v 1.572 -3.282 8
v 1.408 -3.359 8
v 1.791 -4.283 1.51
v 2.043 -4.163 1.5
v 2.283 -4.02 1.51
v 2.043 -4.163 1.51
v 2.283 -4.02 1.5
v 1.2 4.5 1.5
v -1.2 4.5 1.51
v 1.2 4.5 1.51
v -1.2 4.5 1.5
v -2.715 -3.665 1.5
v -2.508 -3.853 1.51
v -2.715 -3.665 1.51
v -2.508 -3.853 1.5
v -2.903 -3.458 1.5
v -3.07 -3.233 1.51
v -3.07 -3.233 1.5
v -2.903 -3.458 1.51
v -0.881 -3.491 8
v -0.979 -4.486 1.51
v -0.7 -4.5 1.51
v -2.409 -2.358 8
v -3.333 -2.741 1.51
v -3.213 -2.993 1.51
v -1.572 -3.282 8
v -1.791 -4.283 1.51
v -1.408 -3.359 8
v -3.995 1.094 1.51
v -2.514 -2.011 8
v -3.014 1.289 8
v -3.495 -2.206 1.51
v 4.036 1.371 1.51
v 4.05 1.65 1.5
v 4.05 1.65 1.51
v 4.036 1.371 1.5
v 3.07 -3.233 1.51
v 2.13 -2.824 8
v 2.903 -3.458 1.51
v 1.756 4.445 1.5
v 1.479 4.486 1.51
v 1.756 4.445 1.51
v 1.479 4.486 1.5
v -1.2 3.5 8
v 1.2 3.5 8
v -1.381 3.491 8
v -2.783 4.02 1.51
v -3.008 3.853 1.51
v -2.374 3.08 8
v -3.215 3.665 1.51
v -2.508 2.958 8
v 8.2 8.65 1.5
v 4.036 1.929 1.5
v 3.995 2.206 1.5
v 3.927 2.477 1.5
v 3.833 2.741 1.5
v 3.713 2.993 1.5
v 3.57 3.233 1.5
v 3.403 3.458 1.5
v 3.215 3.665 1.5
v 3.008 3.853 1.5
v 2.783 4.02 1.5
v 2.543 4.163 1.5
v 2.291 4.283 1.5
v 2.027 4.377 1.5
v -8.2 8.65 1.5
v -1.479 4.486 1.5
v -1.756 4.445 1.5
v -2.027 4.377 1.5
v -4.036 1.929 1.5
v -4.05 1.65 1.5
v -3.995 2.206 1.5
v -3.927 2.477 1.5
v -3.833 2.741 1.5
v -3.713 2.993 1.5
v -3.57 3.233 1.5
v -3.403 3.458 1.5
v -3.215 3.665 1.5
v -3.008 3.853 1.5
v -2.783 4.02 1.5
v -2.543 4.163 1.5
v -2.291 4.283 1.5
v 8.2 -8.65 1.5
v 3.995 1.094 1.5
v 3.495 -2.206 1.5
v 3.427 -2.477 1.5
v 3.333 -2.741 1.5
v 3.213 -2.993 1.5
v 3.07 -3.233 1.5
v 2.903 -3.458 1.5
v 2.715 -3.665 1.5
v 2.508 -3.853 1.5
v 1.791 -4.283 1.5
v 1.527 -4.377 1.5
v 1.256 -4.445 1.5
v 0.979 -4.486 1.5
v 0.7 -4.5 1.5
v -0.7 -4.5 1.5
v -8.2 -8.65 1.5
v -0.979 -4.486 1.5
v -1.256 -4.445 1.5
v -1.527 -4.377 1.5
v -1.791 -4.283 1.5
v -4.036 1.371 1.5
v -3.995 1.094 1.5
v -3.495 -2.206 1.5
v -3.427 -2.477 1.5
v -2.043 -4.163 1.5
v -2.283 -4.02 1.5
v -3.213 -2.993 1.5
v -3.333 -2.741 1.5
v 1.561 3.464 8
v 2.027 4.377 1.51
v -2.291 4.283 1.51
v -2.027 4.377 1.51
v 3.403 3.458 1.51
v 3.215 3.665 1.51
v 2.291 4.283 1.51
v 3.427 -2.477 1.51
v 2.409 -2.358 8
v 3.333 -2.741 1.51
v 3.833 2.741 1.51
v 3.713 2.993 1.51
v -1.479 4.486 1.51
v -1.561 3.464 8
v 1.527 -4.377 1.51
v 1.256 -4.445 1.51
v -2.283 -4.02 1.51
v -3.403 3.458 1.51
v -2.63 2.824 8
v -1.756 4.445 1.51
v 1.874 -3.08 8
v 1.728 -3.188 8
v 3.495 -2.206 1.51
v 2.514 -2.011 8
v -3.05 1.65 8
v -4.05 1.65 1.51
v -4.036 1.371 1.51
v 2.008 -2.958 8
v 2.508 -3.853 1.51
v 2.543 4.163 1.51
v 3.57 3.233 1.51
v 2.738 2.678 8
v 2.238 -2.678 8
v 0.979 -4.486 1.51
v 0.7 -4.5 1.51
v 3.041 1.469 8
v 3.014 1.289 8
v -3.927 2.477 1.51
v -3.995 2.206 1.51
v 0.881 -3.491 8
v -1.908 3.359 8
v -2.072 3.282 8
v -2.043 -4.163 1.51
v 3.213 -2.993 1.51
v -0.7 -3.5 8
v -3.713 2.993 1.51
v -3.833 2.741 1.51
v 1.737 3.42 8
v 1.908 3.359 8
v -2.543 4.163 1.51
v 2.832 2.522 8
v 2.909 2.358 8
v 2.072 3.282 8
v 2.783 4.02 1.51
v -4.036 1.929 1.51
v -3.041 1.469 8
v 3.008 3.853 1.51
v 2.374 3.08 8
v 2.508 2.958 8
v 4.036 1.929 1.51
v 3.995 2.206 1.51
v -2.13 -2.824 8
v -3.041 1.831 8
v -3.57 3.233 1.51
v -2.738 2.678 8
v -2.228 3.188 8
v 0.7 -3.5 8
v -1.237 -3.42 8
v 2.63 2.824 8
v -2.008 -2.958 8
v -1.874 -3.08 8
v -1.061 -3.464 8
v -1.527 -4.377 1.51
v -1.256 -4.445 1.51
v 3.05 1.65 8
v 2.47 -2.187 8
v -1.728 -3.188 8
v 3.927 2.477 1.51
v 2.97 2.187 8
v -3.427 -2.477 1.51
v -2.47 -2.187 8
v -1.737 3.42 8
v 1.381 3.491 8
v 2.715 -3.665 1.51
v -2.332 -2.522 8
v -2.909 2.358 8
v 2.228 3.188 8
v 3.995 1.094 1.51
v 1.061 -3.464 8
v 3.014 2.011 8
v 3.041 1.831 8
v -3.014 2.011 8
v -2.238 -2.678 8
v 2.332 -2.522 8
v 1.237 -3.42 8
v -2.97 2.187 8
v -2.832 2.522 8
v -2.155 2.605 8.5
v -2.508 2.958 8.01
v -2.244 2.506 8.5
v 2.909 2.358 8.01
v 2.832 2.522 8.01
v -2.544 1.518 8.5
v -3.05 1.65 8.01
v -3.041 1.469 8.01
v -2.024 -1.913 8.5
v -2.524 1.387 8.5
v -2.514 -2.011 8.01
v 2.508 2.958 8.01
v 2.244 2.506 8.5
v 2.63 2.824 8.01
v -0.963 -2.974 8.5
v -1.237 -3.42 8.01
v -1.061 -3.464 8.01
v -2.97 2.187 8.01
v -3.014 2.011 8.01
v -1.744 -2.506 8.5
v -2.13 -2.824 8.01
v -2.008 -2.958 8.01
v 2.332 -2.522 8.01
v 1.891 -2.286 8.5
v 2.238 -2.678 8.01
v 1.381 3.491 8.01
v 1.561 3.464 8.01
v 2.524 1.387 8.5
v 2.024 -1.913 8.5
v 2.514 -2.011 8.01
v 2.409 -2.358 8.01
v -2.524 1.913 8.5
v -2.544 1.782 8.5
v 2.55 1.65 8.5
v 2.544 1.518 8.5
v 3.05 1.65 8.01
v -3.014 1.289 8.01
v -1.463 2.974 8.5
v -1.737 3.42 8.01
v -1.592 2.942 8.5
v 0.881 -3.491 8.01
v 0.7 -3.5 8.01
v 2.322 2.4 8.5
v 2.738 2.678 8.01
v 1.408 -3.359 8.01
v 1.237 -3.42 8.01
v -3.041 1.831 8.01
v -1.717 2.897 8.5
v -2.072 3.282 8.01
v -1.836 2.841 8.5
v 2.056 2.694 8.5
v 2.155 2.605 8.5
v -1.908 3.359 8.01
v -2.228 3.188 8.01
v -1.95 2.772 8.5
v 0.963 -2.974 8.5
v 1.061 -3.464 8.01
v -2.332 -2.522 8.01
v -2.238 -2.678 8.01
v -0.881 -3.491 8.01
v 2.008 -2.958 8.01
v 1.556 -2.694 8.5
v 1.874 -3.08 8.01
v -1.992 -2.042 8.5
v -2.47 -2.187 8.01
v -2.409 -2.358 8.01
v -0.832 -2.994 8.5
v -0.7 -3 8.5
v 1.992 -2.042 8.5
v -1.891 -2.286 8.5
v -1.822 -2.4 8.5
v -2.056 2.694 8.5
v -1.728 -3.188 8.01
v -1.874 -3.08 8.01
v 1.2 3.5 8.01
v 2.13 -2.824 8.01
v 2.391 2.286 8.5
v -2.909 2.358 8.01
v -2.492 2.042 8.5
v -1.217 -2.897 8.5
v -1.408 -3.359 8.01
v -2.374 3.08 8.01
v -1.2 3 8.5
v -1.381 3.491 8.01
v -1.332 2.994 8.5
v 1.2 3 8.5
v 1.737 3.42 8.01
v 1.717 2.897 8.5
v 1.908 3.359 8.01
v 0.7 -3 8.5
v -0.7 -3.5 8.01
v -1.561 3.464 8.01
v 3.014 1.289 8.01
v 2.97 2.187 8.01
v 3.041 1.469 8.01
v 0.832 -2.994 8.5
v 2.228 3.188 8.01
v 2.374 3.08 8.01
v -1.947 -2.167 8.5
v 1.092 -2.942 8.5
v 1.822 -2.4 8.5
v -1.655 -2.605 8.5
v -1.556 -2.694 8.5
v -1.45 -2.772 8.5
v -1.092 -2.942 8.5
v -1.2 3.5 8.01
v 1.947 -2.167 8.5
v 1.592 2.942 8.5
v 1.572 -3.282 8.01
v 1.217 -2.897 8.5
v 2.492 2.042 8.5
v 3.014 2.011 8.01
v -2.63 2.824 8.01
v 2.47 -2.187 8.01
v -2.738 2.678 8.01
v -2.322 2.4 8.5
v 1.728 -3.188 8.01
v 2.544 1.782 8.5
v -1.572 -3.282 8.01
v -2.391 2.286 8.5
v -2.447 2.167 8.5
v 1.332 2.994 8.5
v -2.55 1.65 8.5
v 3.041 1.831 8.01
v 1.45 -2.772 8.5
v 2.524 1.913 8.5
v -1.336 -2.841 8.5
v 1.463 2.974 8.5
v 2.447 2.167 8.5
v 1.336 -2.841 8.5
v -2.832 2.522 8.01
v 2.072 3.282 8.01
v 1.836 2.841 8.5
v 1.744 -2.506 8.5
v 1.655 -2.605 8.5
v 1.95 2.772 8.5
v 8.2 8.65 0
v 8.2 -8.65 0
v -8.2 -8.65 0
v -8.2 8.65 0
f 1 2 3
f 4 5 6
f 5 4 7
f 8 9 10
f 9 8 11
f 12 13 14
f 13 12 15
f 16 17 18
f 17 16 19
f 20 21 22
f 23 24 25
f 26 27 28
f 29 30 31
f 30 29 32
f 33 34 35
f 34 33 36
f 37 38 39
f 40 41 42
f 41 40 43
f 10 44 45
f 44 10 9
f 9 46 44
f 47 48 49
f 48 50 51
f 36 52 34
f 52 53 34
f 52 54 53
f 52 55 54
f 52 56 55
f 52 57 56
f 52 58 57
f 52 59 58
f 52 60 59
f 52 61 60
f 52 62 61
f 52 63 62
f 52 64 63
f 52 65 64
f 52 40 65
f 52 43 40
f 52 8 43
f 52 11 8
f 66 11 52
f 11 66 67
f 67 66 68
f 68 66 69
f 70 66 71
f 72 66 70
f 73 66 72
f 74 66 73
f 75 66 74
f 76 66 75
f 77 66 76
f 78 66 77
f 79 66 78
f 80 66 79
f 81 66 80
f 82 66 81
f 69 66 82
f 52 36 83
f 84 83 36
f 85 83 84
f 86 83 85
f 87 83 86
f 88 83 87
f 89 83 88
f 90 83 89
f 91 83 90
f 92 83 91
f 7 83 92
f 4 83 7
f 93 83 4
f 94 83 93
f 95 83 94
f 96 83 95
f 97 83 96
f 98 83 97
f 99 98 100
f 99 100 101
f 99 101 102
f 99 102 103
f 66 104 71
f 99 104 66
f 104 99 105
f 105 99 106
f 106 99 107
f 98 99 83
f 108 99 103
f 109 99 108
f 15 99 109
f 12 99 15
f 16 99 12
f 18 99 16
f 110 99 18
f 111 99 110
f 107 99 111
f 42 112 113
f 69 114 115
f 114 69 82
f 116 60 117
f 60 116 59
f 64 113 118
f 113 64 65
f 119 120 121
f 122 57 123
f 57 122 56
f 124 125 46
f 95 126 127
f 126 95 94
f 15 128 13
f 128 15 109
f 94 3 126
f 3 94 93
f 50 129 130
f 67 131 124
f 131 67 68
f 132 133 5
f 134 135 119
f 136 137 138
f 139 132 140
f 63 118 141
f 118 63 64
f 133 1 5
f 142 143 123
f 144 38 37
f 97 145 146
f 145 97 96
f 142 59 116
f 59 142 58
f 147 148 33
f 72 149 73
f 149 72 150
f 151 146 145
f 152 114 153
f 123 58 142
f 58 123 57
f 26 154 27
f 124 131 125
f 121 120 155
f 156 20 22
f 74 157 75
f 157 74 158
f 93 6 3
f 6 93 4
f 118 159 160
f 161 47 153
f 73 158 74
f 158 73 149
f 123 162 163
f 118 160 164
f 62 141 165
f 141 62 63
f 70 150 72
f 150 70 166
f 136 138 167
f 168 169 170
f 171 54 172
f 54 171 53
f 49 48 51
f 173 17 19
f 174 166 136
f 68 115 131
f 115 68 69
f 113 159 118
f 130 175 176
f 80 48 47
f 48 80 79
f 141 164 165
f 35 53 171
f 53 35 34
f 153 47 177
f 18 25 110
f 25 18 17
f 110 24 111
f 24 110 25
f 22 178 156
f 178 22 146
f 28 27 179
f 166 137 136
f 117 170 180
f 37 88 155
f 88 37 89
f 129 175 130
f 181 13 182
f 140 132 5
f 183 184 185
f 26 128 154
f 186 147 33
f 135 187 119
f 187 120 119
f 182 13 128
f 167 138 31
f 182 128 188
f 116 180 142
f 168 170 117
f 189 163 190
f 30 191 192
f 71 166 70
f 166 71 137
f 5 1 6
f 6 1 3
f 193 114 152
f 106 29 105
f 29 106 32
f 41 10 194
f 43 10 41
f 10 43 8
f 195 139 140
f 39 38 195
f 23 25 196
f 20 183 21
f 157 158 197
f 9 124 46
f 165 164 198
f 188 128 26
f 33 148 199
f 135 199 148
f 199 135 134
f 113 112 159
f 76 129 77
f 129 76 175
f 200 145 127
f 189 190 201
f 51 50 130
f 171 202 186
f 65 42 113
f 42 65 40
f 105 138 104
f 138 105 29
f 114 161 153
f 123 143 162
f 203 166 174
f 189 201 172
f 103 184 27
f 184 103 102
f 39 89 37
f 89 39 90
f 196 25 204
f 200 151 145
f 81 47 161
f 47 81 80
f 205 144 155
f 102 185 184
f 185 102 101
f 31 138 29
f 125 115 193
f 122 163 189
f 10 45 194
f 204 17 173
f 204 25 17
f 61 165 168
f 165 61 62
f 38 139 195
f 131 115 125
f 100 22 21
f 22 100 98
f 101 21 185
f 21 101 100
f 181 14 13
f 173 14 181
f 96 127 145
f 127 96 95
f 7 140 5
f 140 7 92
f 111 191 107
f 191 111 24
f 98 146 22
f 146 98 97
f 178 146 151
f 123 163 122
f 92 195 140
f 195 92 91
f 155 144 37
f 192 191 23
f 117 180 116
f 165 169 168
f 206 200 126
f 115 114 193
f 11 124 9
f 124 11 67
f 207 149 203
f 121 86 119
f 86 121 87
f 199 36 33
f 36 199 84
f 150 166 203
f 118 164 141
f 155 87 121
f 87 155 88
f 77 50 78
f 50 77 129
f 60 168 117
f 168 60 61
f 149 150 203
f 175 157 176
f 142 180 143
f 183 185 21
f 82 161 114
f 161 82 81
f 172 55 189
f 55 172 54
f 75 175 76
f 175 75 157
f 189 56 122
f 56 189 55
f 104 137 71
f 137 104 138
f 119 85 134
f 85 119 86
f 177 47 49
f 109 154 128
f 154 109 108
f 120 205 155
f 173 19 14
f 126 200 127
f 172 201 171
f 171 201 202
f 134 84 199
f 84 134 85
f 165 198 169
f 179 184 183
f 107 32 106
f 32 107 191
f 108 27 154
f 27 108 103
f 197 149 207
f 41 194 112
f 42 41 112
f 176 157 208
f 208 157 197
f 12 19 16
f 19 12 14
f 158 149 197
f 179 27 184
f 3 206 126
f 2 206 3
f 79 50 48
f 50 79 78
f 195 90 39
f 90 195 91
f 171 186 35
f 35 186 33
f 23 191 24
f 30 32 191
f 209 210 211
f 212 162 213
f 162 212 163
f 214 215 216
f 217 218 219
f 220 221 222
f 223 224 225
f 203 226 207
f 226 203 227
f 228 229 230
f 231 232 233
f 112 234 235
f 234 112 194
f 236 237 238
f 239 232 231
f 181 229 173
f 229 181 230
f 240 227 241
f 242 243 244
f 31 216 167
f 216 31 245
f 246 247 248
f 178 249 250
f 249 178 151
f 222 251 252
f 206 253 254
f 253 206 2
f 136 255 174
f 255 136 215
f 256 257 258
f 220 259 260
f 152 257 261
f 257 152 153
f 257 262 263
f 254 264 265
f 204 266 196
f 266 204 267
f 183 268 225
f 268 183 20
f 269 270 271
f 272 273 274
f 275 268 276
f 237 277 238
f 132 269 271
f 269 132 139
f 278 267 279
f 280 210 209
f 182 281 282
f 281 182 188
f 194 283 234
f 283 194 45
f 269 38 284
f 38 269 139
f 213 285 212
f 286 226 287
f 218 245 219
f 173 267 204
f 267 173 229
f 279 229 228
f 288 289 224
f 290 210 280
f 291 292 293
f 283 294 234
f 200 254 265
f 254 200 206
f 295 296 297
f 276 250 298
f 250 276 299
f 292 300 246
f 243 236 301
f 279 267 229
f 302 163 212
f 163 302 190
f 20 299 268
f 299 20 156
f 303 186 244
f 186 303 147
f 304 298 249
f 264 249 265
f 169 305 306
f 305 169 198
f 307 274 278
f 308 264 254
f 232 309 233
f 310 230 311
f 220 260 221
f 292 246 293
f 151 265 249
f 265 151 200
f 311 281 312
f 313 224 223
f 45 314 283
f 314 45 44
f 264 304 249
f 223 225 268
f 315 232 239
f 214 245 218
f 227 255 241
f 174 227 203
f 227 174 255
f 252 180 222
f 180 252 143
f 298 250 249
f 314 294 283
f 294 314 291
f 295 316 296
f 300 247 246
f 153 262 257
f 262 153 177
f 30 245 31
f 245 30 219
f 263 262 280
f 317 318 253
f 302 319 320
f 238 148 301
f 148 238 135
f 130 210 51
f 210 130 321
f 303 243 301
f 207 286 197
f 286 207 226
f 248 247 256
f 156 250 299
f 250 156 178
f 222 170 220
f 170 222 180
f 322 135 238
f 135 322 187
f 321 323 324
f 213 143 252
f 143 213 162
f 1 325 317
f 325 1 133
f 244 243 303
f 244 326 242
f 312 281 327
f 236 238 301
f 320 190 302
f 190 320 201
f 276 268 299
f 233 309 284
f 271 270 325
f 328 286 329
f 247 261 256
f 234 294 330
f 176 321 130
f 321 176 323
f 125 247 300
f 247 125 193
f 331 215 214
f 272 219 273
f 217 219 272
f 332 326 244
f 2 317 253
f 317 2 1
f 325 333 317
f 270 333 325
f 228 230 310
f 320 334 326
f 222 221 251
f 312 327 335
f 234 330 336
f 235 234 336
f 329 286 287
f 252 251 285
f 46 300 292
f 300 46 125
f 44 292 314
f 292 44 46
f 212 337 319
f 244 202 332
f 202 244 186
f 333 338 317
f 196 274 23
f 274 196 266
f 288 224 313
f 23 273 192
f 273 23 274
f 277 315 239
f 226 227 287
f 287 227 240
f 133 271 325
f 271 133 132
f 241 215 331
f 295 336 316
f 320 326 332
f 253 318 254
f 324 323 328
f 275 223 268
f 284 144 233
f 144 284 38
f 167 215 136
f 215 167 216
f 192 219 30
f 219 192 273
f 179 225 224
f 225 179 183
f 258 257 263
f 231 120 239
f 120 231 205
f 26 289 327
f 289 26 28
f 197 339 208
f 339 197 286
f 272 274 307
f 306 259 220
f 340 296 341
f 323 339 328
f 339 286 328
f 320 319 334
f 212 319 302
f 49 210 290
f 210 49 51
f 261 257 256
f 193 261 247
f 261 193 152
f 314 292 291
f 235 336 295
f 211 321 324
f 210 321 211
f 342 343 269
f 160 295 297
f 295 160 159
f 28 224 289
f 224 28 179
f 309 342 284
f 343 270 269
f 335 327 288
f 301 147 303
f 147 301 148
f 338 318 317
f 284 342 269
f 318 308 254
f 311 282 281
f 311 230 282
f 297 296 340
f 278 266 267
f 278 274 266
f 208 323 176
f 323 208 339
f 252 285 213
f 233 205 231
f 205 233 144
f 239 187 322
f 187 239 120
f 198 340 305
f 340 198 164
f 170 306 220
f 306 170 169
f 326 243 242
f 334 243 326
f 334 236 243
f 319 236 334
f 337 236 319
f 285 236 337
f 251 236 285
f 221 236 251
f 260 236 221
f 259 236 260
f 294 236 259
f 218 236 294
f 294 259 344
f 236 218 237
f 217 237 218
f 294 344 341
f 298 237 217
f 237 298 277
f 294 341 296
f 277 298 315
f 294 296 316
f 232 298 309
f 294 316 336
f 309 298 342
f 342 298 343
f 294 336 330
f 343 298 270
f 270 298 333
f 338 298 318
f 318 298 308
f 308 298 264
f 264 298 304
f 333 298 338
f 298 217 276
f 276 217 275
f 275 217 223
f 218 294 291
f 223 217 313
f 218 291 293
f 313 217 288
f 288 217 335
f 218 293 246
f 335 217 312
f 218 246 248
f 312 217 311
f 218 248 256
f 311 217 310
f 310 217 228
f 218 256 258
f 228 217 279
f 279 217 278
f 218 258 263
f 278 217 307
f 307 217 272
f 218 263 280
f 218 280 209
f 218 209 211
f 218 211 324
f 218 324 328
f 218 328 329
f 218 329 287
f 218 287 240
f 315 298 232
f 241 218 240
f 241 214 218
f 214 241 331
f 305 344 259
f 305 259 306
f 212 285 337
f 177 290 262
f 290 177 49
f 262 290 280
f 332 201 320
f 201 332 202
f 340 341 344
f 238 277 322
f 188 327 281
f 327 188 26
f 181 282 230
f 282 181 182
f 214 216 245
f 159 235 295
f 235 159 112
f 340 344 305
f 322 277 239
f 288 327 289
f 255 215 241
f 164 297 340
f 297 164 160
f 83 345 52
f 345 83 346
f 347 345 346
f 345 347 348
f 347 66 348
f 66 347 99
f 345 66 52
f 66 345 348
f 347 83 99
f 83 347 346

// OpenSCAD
// file: ../../libraries/toothbrush-pegs/toothbrush-pegs.scad
// toothbrush-pegs — peg shapes that mate with the recess on the base
// of common electric-toothbrush handles. Pull yours apart, measure the
// recess Ø at each end + the back-arc-to-front-arc length, set a
// tolerance, and adjust if the fit is too loose or too tight.
//
// Conventions:
//   * Peg origin = centre of the long axis, on the BASE face (z = 0).
//   * Long axis along world Y; the WIDER "back" end is at +Y and the
//     NARROWER "front" end at −Y. Brushes are not symmetric, so the
//     peg isn't either — the asymmetric cross-section rotationally
//     keys the brush to a fixed orientation.
//   * Peg grows in +Z; `height` is the peg's vertical extent.
//
// Add modules here per brush family (Sonicare, Quip, etc.) as you
// measure them. Keep the parameter names symmetric across families
// so callers can swap the module name and pass the same arguments.
//
// Author: John Mylchreest <jmylchreest@gmail.com>. MIT licensed.

// Oral-B (Type 3766-class) handle base peg dimensions. The recess is a
// rounded rectangle that's wider at the charging-side end than at the
// bristle-side end, with small radius corners — NOT the smooth teardrop
// a `hull(2 circles)` would give. Geometry is FIXED — only `tolerance`
// is exposed below — because the brush's recess never changes between
// handles. Edit these constants if your handle disagrees; the test
// piece picks up the new sizes automatically.
ORALB_PEG_W_BACK    = 8.4;   // width at the back (charging-side) end
ORALB_PEG_W_FRONT   = 7.4;   // width at the front (bristle-side) end
ORALB_PEG_LENGTH    = 9.3;   // back end → front end along the long axis
ORALB_PEG_CORNER_R  = 3.0;   // rounding radius applied at every corner
ORALB_PEG_HEIGHT    = 7.0;   // vertical peg height (≤ ~12.5 mm recess depth)
ORALB_PEG_DEPTH_MAX = 12.5;  // brush's recess depth — keep ORALB_PEG_HEIGHT under this

// Trapezoid-with-rounded-corners — hull of four corner circles, one at
// each corner of an isoceles trapezoid (w_back wide at +Y, w_front wide
// at −Y, total length along Y). Corner radii are equal at all four
// corners; the side walls come out as the straight tangent lines
// between the back and front circles on each side (≈ 5–6° in from
// vertical for the default Oral-B numbers). Centered at the origin.
module asym_rounded_rect_2d(w_back, w_front, length, r) {
    rr = max(0.1, min(r, min(w_back, w_front, length) / 2 - 0.001));
    hull() {
        translate([-w_back  / 2 + rr,  length / 2 - rr]) circle(r = rr);
        translate([+w_back  / 2 - rr,  length / 2 - rr]) circle(r = rr);
        translate([-w_front / 2 + rr, -length / 2 + rr]) circle(r = rr);
        translate([+w_front / 2 - rr, -length / 2 + rr]) circle(r = rr);
    }
}

// Oral-B brush body peg. The base cross-section comes from the
// constants above and the tolerance; on top of that:
//   * `taper` is the TOTAL XY shrinkage from the peg's base to the top
//     of its main (tapered) body — subtracted from each linear
//     dimension, half from the corner radius. 2 mm by default so the
//     top sits comfortably narrower than the recess opening.
//   * `chamfer` adds an extra bevel at the very top in `chamfer_h` of
//     vertical height, removing `chamfer` per side from the linear
//     dimensions. A 0.5 × 0.5 mm default gives a 45° lead-in for
//     easier insertion. Set `chamfer = 0` or `chamfer_h = 0` to skip.
// Long axis comes out along world Y with the wider "back" end at +Y.
module oralb_body_peg(
    tolerance = 0.3,
    taper     = 2.0,
    chamfer   = 0.5,
    chamfer_h = 0.5
) {
    wb = max(0.1, ORALB_PEG_W_BACK   - tolerance);
    wf = max(0.1, ORALB_PEG_W_FRONT  - tolerance);
    l  = max(0.1, ORALB_PEG_LENGTH   - tolerance);
    rr = max(0.1, ORALB_PEG_CORNER_R - tolerance / 2);
    h  = ORALB_PEG_HEIGHT;

    use_chamfer = chamfer > 0 && chamfer_h > 0;
    main_h = use_chamfer ? h - chamfer_h : h;

    // Top of the tapered main body (also bottom of the chamfer when
    // the chamfer is in use).
    wb_t = max(0.1, wb - taper);
    wf_t = max(0.1, wf - taper);
    l_t  = max(0.1, l  - taper);
    rr_t = max(0.1, rr - taper / 2);

    union() {
        // Tapered main body — hull from the full base up to the taper-top.
        hull() {
            linear_extrude(height = 0.01)
                asym_rounded_rect_2d(wb, wf, l, rr);
            translate([0, 0, main_h - 0.01])
                linear_extrude(height = 0.01)
                    asym_rounded_rect_2d(wb_t, wf_t, l_t, rr_t);
        }
        // Optional top chamfer — hull from taper-top up to a smaller
        // cross-section, giving a quick bevel at the very top edge.
        if (use_chamfer)
            translate([0, 0, main_h])
                hull() {
                    linear_extrude(height = 0.01)
                        asym_rounded_rect_2d(wb_t, wf_t, l_t, rr_t);
                    translate([0, 0, chamfer_h - 0.01])
                        linear_extrude(height = 0.01)
                            asym_rounded_rect_2d(
                                max(0.1, wb_t - 2 * chamfer),
                                max(0.1, wf_t - 2 * chamfer),
                                max(0.1, l_t  - 2 * chamfer),
                                max(0.1, rr_t - chamfer)
                            );
                }
    }
}
// main file
// oralb-peg-test — minimum-material fit-check piece for the Oral-B
// body peg. Prints a single peg standing on a thin plate; push your
// brush onto it to confirm the slide-fit before committing the
// tolerance to oralb-caddy.scad's body_peg_tolerance.
//
// Print flat (plate on the bed, peg sticking up). No support needed.
//
// Author: John Mylchreest <jmylchreest@gmail.com>. MIT licensed.

// include<> (not use<>) so the ORALB_PEG_* constants are visible here
// for the plate-sizing calculation. The library has no top-level
// geometry so include is safe — nothing gets emitted by accident.
include <../../libraries/toothbrush-pegs/toothbrush-pegs.scad>

/* [Peg] */
// The peg's base shape and size are fixed by the library; tolerance,
// taper and chamfer are the per-print knobs. Re-print at different
// values if the brush is too loose, too tight, or hard to align.
peg_tolerance = 0.3;
peg_taper     = 2.0;   // total XY shrinkage from base to top of main body
peg_chamfer   = 0.5;   // extra per-side inset at the very top (insertion lead-in)
peg_chamfer_h = 0.5;   // vertical height of the chamfer (45° at 0.5/0.5)

/* [Plate] */
plate_t       = 1.5;
plate_padding = 4;     // extra material around the peg on each side

/* [Quality] */
$fa = $preview ? $fa : 1;
$fs = $preview ? $fs : 0.2;
$fn = 64;

// ---- derived plate size ----
plate_w = ORALB_PEG_W_BACK + 2 * plate_padding;
plate_d = ORALB_PEG_LENGTH + 2 * plate_padding;

module test_piece() {
    union() {
        translate([0, 0, plate_t / 2])
            cube([plate_w, plate_d, plate_t], center = true);
        translate([0, 0, plate_t])
            oralb_body_peg(
                tolerance = peg_tolerance,
                taper     = peg_taper,
                chamfer   = peg_chamfer,
                chamfer_h = peg_chamfer_h
            );
    }
}

test_piece();
